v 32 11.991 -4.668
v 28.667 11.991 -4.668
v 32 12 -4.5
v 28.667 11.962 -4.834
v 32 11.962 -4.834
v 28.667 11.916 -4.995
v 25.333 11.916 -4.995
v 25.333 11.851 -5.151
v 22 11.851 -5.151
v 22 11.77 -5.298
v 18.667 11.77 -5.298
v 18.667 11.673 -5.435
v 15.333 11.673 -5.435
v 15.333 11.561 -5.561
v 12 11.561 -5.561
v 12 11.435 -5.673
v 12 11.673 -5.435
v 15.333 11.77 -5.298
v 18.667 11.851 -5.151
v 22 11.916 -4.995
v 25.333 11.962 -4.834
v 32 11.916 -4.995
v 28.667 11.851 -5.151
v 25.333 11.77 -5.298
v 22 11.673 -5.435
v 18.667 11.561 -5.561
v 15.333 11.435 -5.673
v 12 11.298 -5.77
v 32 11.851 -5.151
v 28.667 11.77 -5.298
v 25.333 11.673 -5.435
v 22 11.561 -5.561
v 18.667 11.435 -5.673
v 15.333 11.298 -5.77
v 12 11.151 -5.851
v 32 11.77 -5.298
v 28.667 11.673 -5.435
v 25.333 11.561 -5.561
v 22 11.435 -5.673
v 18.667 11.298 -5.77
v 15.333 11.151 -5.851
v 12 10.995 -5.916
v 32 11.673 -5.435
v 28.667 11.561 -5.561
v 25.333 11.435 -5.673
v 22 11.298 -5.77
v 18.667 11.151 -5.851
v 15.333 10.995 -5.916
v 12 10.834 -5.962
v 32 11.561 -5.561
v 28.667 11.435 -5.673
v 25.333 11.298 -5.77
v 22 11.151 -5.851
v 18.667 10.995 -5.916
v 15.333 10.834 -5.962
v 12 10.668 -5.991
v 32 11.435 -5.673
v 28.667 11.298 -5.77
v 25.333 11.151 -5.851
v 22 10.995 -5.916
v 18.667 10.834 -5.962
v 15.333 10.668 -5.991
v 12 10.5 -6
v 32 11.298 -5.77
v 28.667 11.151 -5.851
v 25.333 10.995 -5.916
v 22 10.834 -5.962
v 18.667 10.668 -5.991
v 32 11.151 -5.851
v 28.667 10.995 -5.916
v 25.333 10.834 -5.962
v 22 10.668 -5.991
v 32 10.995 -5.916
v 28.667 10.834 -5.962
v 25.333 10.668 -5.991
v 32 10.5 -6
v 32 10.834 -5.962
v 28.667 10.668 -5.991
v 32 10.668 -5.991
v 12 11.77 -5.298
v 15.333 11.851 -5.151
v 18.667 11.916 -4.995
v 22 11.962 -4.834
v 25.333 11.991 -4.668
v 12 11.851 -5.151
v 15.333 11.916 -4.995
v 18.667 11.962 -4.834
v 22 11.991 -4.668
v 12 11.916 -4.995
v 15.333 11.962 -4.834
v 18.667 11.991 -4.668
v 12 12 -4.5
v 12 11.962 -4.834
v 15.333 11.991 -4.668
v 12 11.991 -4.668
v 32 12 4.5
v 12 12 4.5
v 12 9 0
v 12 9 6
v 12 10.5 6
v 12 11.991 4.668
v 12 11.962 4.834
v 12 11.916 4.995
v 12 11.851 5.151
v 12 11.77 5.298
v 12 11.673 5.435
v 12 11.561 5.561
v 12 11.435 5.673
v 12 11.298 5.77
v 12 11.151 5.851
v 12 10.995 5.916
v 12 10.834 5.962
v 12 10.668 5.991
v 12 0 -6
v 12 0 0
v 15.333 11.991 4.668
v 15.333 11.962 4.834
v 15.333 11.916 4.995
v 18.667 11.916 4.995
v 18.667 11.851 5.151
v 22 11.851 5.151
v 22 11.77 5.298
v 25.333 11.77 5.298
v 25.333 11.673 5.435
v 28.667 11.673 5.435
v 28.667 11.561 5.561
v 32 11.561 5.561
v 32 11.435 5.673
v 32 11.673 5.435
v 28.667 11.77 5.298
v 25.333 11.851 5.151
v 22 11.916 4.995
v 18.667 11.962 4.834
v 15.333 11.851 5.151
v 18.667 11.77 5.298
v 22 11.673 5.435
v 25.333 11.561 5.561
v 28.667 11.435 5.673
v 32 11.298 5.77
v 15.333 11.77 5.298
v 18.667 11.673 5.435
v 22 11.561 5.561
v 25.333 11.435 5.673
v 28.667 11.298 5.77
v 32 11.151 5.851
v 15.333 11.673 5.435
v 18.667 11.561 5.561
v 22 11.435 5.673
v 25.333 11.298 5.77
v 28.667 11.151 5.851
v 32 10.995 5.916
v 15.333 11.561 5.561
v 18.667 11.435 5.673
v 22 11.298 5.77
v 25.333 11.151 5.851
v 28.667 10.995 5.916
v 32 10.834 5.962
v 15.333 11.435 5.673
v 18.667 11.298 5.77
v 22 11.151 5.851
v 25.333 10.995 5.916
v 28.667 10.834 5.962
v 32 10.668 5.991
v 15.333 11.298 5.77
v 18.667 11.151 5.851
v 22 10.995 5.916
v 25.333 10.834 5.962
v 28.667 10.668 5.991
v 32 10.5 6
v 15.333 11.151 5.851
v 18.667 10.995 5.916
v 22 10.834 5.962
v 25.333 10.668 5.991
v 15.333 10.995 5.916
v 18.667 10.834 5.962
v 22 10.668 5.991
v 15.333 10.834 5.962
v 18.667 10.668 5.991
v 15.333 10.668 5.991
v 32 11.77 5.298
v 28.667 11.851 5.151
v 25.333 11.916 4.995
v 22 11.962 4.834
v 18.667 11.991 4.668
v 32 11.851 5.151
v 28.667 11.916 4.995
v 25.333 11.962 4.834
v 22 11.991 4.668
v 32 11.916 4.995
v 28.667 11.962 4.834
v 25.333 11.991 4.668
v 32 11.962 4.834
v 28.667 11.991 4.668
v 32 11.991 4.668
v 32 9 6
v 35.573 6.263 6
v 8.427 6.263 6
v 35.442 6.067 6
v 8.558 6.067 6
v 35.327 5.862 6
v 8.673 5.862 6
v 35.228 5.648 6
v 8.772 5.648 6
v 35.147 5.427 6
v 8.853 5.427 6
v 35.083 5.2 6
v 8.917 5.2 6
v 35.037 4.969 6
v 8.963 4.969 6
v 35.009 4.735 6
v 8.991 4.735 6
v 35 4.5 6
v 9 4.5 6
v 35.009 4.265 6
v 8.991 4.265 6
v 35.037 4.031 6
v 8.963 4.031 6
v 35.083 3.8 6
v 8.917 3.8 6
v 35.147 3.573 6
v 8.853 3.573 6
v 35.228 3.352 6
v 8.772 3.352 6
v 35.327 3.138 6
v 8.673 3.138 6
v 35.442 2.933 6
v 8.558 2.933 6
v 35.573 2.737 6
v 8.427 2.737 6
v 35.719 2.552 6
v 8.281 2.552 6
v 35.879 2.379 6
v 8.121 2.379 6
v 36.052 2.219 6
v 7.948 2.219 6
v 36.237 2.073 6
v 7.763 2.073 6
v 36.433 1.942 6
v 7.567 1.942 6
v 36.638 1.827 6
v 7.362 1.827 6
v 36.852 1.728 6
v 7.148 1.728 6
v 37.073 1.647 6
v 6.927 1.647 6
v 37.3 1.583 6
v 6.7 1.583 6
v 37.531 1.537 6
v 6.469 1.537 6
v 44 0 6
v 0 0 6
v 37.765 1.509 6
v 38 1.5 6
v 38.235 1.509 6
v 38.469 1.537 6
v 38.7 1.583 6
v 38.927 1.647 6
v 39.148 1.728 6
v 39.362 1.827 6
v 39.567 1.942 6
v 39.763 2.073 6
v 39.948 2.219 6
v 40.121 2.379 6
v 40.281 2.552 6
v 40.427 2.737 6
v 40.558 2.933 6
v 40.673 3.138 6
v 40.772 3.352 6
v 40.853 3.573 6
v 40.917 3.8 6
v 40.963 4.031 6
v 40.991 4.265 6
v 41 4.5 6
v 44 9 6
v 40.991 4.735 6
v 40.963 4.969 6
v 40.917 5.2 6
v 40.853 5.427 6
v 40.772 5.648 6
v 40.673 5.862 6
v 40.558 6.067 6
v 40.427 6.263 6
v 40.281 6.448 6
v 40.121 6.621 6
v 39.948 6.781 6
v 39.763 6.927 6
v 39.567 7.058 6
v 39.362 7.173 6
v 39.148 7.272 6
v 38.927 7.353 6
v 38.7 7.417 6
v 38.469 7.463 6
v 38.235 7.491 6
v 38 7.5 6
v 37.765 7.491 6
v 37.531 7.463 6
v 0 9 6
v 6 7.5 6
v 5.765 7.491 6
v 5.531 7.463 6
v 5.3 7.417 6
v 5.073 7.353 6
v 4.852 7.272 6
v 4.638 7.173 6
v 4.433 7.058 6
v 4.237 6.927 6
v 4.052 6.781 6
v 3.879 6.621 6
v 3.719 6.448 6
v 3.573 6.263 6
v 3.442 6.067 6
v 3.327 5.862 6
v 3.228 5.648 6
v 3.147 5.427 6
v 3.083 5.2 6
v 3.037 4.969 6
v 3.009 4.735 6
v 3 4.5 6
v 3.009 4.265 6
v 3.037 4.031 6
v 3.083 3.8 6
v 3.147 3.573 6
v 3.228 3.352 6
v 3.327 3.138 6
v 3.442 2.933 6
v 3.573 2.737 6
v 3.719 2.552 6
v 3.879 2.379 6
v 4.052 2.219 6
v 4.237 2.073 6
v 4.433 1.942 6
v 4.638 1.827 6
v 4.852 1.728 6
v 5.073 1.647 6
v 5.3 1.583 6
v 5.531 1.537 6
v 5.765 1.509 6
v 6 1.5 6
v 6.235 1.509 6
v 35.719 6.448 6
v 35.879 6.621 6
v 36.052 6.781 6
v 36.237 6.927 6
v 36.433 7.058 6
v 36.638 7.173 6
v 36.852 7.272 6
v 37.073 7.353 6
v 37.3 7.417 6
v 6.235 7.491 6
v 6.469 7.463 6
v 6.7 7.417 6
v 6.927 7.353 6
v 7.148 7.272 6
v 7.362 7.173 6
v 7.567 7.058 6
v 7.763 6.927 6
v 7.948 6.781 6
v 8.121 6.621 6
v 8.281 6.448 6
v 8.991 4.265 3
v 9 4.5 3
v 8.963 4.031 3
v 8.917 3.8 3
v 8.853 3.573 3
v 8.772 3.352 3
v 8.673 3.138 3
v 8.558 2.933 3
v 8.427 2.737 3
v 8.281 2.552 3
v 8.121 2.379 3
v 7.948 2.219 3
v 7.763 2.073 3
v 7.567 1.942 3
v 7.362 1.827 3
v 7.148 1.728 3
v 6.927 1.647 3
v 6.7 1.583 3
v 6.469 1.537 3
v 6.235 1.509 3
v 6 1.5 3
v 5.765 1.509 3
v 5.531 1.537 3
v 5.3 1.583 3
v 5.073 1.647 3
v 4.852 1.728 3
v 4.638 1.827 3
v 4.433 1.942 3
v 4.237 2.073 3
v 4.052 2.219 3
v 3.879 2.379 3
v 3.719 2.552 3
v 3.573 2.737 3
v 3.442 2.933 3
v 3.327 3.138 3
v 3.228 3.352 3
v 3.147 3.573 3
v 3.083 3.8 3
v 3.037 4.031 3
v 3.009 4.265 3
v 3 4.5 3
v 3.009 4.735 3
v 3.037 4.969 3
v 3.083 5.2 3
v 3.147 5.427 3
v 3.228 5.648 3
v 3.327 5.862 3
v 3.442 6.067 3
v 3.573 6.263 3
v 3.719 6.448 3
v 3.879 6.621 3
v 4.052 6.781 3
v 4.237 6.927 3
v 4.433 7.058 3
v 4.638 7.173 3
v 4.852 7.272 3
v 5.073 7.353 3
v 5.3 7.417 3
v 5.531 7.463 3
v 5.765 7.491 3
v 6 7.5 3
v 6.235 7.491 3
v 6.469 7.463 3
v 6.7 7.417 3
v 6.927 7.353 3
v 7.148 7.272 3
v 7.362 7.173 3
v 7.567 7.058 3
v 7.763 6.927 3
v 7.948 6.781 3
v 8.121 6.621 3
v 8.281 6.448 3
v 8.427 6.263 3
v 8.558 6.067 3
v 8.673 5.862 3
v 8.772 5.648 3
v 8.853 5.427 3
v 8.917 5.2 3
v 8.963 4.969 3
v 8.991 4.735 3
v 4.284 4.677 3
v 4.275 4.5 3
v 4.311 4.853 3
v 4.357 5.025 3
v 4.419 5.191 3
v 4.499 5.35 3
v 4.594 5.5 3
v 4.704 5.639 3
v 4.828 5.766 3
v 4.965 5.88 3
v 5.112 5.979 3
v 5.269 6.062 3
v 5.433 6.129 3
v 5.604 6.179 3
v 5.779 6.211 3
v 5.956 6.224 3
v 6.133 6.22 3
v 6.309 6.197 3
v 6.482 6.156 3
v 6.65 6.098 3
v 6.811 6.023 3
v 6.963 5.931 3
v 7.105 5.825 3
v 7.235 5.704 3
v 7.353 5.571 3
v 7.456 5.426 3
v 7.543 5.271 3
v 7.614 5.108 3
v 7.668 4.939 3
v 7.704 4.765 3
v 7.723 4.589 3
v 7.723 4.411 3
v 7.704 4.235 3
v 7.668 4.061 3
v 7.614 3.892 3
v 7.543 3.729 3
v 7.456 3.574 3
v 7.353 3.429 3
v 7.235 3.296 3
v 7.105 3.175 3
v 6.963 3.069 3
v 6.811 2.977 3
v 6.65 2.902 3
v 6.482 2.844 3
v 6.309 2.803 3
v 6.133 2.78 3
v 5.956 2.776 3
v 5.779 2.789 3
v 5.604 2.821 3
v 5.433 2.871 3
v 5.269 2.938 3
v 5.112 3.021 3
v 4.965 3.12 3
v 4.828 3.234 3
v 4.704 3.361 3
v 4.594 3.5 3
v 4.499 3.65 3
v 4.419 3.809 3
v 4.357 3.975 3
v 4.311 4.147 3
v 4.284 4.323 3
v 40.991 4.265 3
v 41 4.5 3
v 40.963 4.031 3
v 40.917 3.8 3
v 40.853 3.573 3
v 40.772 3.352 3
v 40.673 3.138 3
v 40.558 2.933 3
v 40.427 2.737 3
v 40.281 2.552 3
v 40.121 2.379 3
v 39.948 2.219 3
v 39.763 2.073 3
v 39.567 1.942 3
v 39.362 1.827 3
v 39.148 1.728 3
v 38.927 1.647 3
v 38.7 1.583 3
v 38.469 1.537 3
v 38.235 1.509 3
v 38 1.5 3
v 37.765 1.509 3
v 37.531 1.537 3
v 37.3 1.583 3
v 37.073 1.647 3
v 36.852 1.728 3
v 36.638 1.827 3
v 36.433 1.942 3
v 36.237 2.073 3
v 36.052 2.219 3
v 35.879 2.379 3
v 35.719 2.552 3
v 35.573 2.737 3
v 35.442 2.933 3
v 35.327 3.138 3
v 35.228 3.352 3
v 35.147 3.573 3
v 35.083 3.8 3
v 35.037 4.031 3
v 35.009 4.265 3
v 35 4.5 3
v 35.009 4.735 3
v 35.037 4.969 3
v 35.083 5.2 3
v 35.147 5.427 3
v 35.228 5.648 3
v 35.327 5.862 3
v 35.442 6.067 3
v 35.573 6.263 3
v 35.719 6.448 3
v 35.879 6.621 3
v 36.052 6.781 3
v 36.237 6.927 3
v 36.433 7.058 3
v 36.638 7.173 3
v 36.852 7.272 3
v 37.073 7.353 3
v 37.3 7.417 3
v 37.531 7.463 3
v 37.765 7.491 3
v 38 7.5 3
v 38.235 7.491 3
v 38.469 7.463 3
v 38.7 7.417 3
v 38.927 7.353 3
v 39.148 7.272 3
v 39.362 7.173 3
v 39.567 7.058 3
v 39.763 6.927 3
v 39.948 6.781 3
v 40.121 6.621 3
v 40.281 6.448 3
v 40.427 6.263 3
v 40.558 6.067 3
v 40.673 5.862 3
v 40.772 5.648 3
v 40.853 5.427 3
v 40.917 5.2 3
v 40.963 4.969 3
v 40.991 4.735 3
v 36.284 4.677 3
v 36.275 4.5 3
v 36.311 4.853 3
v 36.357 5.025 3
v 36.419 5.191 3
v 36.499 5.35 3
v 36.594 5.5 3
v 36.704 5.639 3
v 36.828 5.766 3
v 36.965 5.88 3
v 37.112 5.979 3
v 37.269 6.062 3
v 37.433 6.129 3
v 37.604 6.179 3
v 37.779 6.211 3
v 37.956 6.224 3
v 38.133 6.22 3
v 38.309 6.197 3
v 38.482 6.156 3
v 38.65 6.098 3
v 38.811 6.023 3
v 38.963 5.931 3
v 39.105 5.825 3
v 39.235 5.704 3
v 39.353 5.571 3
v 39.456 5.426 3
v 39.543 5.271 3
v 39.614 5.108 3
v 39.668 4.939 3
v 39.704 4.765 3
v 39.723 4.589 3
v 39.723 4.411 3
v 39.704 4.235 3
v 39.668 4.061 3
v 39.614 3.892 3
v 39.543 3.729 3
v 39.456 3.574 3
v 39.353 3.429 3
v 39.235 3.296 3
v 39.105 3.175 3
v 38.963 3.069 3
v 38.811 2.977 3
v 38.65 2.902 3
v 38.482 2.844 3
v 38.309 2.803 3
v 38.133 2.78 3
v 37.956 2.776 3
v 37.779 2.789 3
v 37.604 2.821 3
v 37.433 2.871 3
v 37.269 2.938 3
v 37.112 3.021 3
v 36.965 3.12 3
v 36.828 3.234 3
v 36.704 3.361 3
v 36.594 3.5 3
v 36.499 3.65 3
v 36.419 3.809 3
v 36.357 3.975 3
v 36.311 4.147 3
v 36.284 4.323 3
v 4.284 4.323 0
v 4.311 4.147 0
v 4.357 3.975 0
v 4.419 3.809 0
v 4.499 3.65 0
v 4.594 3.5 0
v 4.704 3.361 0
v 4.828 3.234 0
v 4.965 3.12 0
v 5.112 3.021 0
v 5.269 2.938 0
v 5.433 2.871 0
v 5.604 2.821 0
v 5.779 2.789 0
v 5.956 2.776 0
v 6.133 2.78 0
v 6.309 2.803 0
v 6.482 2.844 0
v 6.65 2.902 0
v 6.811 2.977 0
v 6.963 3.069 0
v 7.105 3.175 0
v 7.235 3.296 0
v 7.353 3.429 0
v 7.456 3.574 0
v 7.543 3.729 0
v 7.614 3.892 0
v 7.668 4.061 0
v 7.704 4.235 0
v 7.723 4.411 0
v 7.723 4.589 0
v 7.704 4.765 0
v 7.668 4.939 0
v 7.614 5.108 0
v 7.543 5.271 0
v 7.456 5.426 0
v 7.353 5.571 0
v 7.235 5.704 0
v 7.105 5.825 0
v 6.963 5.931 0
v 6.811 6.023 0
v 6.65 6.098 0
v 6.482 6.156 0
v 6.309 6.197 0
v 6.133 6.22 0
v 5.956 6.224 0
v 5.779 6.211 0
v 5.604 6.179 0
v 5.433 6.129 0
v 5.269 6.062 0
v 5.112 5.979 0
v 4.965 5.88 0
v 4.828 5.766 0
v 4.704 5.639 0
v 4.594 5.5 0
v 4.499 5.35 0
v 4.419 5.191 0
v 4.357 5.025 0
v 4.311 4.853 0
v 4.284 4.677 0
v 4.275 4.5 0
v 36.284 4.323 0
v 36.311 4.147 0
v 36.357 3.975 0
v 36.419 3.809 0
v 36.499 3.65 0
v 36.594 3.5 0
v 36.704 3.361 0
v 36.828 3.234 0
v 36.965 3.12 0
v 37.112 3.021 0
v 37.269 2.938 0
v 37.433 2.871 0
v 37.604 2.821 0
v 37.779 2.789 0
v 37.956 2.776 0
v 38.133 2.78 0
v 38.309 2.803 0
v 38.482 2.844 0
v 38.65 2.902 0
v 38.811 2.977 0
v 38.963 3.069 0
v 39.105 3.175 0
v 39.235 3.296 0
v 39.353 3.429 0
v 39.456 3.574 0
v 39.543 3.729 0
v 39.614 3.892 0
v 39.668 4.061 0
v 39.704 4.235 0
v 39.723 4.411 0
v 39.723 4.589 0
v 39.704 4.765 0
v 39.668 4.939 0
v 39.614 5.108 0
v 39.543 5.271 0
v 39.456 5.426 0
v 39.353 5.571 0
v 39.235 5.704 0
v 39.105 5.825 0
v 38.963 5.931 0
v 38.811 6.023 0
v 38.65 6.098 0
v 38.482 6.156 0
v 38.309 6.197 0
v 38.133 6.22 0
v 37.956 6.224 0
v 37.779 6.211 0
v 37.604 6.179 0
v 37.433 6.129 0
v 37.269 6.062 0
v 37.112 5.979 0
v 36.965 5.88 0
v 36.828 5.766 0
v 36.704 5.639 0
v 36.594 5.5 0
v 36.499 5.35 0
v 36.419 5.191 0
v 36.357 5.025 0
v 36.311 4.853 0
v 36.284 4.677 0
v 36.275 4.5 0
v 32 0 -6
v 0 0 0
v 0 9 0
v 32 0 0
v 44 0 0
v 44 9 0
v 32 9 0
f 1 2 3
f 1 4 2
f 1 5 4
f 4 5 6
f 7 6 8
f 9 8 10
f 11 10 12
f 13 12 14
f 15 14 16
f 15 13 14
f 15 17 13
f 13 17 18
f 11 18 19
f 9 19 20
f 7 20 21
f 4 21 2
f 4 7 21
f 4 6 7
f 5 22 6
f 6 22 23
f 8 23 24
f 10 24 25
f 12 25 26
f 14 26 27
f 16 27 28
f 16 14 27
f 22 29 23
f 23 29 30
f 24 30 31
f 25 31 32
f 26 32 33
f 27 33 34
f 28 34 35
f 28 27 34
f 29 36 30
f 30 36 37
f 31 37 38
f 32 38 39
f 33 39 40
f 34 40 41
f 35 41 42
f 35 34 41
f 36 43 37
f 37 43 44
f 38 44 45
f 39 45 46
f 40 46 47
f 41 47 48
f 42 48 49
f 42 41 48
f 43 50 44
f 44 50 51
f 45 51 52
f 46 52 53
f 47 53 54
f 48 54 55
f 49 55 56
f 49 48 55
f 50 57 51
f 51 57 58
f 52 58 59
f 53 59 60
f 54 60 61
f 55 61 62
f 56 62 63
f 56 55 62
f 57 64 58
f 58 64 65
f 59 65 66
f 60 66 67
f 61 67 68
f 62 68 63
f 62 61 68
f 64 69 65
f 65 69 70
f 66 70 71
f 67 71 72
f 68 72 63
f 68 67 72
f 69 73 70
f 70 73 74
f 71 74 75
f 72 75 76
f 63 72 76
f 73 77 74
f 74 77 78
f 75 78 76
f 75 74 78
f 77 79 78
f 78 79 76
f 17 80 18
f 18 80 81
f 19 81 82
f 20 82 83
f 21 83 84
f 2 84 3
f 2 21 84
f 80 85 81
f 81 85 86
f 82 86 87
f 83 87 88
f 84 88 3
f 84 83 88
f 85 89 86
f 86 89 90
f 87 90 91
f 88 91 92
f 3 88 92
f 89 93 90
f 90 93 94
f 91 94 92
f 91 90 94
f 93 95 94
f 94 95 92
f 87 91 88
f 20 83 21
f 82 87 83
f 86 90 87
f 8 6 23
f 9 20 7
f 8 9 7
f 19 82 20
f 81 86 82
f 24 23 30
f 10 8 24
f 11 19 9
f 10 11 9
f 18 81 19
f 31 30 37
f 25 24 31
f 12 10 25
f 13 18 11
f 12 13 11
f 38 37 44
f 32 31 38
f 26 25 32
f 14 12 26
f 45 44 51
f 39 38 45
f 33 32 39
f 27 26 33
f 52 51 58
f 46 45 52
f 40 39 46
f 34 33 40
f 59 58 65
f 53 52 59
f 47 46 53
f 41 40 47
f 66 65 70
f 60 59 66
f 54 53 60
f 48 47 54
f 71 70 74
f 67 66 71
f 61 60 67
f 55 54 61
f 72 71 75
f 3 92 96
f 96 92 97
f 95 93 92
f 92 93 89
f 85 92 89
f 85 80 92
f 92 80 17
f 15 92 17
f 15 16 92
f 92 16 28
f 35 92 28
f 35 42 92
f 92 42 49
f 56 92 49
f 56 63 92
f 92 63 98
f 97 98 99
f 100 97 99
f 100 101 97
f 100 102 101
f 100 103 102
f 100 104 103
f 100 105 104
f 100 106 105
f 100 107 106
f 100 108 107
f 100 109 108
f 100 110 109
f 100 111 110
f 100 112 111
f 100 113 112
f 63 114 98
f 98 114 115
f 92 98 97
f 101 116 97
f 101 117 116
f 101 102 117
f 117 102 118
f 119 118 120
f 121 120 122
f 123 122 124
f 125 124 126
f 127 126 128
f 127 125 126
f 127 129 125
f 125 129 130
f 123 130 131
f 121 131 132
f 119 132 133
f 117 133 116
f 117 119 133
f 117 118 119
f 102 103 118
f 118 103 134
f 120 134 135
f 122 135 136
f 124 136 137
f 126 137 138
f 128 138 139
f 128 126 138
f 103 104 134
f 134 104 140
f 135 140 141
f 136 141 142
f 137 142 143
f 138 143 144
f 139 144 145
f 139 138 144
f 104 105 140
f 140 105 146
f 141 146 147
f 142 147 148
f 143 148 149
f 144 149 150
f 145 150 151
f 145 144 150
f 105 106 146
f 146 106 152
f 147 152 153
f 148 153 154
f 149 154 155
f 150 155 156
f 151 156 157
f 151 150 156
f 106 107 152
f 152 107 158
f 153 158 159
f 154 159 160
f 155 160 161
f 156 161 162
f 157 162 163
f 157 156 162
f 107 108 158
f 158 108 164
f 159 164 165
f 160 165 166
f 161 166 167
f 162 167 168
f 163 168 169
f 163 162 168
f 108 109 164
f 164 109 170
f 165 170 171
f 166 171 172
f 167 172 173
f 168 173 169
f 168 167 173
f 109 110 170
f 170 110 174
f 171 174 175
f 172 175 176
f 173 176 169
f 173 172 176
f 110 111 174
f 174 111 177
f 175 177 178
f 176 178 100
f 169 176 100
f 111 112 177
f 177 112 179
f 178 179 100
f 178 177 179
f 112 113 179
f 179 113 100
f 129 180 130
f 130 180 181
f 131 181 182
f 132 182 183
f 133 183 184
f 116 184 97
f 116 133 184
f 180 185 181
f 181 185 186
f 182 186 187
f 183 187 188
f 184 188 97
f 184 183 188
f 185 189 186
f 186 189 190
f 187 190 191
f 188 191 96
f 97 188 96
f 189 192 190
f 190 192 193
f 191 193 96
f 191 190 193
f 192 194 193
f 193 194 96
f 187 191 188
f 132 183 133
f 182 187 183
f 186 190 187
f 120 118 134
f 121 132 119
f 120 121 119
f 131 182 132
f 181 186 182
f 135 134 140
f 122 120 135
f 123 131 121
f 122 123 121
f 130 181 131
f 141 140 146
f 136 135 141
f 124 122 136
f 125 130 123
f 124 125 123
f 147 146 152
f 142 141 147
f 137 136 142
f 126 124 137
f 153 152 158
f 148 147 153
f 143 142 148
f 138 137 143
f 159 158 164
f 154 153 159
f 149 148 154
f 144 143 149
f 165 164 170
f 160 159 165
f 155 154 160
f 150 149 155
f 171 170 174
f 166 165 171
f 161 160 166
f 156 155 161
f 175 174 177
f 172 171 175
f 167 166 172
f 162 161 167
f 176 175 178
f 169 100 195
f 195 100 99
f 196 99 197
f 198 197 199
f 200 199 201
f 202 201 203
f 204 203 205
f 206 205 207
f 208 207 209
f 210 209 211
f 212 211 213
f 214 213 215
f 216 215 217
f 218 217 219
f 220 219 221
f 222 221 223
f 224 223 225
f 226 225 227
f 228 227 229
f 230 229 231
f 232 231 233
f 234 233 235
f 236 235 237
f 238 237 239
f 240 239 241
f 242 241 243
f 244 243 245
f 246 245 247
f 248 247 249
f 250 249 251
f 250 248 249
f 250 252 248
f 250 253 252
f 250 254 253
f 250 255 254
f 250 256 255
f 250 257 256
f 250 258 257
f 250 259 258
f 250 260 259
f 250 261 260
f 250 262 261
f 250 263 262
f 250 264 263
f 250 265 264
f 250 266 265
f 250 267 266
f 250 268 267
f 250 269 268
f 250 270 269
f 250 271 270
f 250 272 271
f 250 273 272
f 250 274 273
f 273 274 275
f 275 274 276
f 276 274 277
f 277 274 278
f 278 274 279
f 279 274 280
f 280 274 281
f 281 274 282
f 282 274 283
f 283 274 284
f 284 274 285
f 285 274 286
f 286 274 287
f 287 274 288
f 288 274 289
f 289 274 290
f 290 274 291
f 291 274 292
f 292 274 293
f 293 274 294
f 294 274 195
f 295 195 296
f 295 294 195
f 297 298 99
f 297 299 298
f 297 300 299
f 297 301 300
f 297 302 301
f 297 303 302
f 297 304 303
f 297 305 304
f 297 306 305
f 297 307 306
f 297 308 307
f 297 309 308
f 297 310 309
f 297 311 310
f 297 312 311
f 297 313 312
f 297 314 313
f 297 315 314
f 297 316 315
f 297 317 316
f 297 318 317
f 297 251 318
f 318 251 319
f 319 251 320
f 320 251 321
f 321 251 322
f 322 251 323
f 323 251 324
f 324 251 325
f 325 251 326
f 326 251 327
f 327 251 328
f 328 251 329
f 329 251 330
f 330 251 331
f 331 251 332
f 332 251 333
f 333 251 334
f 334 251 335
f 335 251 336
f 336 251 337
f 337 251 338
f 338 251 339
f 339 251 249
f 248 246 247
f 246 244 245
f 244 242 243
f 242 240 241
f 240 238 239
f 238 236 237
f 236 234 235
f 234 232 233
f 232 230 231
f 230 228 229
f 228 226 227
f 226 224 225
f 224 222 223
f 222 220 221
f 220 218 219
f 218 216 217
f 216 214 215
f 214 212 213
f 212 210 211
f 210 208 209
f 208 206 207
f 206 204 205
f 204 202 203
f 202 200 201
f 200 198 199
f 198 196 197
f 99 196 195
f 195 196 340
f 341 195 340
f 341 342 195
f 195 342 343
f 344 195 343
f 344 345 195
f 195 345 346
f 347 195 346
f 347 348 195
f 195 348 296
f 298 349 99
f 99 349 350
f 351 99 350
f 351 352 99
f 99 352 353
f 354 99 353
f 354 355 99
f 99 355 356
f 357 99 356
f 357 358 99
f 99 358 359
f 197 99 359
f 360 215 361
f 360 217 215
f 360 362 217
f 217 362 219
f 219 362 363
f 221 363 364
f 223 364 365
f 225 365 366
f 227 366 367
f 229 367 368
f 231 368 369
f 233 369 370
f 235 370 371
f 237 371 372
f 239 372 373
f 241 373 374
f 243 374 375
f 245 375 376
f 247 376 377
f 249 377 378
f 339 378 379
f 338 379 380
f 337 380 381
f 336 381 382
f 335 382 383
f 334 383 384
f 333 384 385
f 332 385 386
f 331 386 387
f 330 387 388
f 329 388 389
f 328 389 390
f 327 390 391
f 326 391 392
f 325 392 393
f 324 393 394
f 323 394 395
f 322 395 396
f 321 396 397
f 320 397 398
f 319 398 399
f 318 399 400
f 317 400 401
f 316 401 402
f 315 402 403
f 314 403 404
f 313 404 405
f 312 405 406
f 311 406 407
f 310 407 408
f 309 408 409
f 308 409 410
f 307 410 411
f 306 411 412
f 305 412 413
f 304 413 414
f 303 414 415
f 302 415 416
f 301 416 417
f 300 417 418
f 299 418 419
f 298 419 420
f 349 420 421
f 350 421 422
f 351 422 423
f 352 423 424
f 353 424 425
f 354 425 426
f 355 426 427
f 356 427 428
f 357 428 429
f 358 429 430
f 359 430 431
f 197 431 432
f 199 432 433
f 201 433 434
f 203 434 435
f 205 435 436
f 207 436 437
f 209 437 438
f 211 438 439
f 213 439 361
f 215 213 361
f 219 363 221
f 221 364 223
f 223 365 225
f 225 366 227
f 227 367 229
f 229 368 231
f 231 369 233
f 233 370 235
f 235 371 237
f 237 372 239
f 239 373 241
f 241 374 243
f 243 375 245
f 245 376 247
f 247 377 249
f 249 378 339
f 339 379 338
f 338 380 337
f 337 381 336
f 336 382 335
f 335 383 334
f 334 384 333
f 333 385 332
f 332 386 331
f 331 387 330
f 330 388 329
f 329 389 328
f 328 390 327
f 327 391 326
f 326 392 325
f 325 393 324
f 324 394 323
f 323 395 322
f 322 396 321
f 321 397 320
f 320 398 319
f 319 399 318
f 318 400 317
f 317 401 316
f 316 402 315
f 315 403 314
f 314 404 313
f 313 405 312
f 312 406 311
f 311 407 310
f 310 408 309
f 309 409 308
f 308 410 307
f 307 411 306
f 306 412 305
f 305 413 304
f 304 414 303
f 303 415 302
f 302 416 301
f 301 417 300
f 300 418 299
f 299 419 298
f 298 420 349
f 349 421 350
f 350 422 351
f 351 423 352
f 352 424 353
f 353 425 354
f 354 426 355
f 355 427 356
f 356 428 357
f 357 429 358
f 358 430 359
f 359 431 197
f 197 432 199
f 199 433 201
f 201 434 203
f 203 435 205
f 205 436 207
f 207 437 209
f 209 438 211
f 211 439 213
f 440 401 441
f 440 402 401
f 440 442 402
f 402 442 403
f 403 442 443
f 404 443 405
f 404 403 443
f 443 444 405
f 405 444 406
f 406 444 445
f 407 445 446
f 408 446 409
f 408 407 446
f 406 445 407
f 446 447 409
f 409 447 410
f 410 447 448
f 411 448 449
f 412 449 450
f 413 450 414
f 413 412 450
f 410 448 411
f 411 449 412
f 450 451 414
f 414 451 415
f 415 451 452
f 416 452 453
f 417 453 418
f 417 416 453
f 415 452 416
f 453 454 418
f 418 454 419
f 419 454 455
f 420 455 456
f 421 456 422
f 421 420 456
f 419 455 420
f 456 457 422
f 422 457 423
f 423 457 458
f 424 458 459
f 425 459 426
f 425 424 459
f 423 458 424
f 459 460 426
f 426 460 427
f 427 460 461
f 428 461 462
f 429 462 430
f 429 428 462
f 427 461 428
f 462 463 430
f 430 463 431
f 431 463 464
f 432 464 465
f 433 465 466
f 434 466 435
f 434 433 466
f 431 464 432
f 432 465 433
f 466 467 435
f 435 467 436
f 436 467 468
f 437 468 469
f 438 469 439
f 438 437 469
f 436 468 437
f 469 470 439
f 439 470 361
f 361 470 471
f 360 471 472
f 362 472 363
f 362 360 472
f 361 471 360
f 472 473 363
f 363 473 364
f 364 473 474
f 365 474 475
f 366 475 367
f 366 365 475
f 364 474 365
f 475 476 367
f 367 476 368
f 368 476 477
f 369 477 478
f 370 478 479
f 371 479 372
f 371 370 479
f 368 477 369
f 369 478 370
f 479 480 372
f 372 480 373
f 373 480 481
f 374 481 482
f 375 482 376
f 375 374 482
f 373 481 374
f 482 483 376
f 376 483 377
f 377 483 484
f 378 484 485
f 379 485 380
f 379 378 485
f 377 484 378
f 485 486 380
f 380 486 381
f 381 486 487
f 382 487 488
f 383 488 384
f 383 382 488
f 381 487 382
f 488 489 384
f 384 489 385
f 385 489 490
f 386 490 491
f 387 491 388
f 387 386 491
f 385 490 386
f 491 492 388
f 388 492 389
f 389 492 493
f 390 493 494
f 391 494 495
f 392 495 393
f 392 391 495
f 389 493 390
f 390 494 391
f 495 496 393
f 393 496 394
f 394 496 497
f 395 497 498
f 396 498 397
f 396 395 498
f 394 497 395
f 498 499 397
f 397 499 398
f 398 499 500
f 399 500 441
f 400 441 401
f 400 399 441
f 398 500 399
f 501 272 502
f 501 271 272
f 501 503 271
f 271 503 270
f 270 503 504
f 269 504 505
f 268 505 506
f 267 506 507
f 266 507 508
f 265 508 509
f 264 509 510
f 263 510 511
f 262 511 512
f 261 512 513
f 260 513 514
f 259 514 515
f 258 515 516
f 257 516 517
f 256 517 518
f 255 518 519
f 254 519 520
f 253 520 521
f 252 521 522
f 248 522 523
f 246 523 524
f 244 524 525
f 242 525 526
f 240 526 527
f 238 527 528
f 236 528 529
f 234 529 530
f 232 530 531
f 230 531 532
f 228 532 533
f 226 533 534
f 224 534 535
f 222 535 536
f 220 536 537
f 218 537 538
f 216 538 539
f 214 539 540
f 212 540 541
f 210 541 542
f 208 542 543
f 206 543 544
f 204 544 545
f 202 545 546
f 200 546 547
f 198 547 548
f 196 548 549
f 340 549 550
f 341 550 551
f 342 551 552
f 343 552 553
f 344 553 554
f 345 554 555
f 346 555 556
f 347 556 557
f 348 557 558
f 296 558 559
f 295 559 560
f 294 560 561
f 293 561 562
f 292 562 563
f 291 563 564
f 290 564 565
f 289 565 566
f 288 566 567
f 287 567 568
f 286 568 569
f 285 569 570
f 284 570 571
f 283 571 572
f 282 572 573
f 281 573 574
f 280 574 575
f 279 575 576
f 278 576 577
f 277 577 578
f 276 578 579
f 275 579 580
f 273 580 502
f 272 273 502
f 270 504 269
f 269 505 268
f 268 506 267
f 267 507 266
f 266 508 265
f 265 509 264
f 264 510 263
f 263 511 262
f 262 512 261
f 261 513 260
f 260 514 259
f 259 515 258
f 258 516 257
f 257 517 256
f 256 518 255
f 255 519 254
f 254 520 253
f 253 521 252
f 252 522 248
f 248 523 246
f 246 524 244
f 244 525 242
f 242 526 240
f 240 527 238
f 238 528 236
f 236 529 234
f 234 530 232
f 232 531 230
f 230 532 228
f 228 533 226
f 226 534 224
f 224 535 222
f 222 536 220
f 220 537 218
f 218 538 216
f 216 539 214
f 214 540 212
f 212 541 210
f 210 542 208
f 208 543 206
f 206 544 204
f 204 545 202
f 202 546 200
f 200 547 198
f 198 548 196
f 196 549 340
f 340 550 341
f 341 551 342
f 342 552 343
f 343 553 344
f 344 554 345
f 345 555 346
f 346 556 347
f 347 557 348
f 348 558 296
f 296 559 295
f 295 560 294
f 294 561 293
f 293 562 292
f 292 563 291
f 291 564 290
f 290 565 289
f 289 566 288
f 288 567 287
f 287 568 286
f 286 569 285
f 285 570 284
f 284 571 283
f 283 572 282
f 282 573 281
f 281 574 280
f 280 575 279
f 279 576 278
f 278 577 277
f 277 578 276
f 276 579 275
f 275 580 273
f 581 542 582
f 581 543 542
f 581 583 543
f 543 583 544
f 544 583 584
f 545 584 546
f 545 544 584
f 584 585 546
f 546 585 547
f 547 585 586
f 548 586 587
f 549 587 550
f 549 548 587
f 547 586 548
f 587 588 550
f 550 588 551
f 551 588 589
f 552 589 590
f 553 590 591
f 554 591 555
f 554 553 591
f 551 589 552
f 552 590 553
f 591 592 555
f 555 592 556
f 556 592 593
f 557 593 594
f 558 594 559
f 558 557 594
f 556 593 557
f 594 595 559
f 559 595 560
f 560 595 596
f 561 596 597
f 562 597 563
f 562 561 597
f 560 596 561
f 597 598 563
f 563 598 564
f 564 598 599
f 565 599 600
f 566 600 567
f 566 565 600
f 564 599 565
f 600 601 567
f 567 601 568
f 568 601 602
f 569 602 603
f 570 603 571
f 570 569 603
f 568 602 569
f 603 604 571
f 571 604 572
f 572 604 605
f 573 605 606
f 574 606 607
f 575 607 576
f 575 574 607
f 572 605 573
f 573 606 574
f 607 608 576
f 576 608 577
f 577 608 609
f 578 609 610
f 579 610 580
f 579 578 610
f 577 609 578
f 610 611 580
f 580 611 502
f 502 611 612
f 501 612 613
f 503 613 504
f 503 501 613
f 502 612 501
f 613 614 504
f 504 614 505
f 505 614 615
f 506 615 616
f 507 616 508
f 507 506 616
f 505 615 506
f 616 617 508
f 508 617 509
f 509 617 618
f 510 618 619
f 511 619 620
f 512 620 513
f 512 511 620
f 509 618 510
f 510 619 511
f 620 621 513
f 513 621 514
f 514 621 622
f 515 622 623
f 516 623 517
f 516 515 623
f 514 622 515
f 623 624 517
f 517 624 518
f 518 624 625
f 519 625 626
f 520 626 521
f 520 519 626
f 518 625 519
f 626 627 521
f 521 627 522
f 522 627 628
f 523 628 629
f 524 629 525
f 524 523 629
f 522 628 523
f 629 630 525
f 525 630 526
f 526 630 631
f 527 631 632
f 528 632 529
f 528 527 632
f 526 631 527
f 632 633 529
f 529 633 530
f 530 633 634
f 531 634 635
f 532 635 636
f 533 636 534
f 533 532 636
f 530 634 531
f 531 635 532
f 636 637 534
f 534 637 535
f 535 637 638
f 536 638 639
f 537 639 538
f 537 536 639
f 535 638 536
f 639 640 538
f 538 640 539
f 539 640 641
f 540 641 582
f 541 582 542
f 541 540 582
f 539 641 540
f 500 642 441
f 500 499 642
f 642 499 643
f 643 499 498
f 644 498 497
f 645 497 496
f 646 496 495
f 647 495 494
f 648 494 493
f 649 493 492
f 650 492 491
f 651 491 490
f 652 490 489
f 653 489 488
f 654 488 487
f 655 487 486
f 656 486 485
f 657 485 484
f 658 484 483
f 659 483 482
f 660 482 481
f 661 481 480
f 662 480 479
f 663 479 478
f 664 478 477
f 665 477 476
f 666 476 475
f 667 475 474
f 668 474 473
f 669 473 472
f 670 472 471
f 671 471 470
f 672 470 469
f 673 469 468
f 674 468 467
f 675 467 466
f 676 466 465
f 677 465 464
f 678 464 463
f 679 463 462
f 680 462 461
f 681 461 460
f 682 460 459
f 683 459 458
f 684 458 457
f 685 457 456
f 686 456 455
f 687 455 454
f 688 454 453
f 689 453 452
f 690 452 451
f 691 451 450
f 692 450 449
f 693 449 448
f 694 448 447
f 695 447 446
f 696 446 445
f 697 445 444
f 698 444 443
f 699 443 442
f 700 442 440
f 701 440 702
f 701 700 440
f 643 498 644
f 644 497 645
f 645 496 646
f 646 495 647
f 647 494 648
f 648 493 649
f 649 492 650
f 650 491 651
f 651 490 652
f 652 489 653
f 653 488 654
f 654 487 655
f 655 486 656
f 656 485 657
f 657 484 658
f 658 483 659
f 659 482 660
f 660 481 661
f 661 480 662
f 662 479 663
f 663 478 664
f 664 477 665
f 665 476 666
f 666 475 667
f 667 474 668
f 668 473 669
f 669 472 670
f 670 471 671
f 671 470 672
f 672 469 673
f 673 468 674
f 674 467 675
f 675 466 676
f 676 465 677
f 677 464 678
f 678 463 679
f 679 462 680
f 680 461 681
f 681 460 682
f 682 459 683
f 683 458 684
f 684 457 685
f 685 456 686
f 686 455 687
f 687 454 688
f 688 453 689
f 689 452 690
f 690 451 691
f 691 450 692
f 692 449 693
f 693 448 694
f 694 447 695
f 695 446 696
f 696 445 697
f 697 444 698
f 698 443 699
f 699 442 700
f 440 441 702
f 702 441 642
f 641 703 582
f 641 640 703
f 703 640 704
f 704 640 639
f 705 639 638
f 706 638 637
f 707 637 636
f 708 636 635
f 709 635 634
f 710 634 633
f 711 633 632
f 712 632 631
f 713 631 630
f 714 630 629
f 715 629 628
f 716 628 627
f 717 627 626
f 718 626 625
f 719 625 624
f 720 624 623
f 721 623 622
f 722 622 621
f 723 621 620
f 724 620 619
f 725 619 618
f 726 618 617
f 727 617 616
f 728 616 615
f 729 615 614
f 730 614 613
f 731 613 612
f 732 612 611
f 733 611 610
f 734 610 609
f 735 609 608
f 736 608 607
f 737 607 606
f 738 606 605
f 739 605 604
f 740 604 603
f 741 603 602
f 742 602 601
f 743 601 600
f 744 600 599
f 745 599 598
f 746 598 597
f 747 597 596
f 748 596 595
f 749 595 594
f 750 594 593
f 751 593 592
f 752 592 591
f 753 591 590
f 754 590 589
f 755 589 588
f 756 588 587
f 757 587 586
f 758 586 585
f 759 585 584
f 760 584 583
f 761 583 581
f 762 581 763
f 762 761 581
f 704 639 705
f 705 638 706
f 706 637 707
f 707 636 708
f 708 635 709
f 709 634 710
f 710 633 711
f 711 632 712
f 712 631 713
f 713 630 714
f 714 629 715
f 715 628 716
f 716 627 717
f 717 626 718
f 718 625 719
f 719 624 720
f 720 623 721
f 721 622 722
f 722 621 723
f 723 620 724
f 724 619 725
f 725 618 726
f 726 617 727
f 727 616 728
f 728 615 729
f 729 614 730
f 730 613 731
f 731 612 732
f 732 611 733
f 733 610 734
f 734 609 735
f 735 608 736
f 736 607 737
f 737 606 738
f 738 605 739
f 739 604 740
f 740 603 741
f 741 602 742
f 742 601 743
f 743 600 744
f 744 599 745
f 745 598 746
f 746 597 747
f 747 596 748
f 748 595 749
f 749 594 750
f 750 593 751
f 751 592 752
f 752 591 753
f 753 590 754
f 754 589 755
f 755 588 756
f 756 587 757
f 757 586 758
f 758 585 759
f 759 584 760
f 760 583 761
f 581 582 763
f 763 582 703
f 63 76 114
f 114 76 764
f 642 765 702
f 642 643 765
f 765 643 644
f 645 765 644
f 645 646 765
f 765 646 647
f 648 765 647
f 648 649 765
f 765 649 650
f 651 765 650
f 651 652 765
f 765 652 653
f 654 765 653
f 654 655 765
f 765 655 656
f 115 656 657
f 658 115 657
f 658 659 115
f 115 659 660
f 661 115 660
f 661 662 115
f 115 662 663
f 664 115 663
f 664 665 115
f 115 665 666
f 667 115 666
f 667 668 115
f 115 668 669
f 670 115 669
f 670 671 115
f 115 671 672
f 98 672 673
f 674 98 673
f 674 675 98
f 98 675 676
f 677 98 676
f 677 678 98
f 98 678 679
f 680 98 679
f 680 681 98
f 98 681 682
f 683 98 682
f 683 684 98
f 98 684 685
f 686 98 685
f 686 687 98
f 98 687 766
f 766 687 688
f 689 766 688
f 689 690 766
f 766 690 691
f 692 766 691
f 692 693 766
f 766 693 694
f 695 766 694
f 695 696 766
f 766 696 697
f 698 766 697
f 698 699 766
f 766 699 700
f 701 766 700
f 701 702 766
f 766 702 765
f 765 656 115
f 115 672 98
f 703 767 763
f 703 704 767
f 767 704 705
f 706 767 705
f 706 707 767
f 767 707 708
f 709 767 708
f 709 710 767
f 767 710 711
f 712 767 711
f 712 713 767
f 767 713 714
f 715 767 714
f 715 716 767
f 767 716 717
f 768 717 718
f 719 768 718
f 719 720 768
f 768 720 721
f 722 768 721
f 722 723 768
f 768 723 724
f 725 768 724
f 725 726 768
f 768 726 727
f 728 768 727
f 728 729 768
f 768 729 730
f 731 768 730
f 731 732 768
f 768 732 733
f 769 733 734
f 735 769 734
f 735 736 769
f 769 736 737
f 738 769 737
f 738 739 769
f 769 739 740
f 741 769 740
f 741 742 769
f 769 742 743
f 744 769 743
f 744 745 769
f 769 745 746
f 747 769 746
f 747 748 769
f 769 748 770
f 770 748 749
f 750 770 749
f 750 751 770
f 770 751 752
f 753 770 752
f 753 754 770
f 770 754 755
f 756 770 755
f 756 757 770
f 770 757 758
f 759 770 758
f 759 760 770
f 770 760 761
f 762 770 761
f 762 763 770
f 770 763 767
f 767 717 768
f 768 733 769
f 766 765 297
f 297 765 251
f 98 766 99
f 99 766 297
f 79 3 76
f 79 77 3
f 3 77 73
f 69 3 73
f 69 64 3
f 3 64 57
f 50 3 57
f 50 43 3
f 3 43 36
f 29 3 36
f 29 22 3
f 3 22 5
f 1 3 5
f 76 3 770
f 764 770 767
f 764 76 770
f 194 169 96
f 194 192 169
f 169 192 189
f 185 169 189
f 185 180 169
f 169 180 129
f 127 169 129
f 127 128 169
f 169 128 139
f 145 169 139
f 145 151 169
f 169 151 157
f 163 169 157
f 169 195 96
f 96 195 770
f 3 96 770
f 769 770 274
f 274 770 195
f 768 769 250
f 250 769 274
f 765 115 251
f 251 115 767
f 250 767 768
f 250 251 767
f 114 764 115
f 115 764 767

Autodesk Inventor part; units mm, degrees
ref_plane "YZ Plane" through (0, 0, 0) normal (1, 0, 0) x (0, 1, 0)
ref_plane "XZ Plane" through (0, 0, 0) normal (0, 1, 0) x (-1, 0, 0)
ref_plane "XY Plane" through (0, 0, 0) normal (0, 0, 1) x (1, 0, 0)
sketch "Sketch1" plane through (0, 0, 0) normal (0, 0, 1) x (1, 0, 0)
  line L0 (0, 0) -> (44, 0)
  line L1 (44, 0) -> (44, 9)
  line L2 (32, 12) -> (12, 12)
  line L3 (0, 9) -> (0, 0)
  line L4 (12, 12) -> (12, 9)
  line L5 (12, 9) -> (0, 9)
  line L6 (32, 12) -> (32, 9)
  line L7 (32, 9) -> (44, 9)
  dimension "d6" = 44
  dimension "d7" = 3
  dimension "d8" = 3
  dimension "d9" = 12
  dimension "d10" = 12
  dimension "d11" = 9
  dimension "d12" = 9
  dimension "d13" = 12
extrude "Extrusion1" add sketch "Sketch1" along normal blind 6
sketch "Sketch2" plane through (0, 0, 0) normal (0, 0, -1) x (-1, 0, 0)
  line L0 (-32, 12) -> (-12, 12) projected
  line L1 (0, 0) -> (-44, 0) projected
  line L2 (-32, 12) -> (-12, 12)
  line L3 (-12, 12) -> (-12, 0)
  line L4 (-12, 0) -> (-32, 0)
  line L5 (-32, 0) -> (-32, 12)
extrude "Extrusion2" add sketch "Sketch2" along normal blind 6
sketch "Sketch3" plane through (0, 0, 0) normal (0, 0, -1) x (-1, 0, 0)
  circle A0 centre (-6, 4.5) radius 1.725
  line L0 (-12, 9) -> (0, 9) projected
  line L1 (0, 9) -> (0, 0) projected
  circle A1 centre (-38, 4.5) radius 1.725
  line L2 (-32, 0) -> (-44, 0) projected
  line L3 (-44, 0) -> (-44, 9) projected
  dimension "d18" = 3.45
  dimension "d19" = 4.5
  dimension "d20" = 6
  dimension "d21" = 3.45
  dimension "d22" = 4.5
  dimension "d23" = 6
extrude "Extrusion3" cut sketch "Sketch3" against normal blind 3
sketch "Sketch4" plane through (0, 0, 6) normal (0, 0, 1) x (1, 0, 0)
  circle A0 centre (6, 4.5) radius 3
  line L0 (12, 9) -> (0, 9) projected
  line L1 (0, 9) -> (0, 0) projected
  circle A1 centre (38, 4.5) radius 1.725 projected
  circle A2 centre (38, 4.5) radius 3
  dimension "d26" = 6
  dimension "d27" = 4.5
  dimension "d28" = 6
  dimension "d29" = 6
extrude "Extrusion4" cut sketch "Sketch4" against normal blind 3 contours A0 | A1 | A2
fillet "Fillet1" radius 1.5 2 edges at (22, 12, 6) (22, 12, -6)
equation "\"d8\" = d7"
equation "\"d10\" = d9"
equation "\"d12\" = d11"
properties part number "beam44mm"
